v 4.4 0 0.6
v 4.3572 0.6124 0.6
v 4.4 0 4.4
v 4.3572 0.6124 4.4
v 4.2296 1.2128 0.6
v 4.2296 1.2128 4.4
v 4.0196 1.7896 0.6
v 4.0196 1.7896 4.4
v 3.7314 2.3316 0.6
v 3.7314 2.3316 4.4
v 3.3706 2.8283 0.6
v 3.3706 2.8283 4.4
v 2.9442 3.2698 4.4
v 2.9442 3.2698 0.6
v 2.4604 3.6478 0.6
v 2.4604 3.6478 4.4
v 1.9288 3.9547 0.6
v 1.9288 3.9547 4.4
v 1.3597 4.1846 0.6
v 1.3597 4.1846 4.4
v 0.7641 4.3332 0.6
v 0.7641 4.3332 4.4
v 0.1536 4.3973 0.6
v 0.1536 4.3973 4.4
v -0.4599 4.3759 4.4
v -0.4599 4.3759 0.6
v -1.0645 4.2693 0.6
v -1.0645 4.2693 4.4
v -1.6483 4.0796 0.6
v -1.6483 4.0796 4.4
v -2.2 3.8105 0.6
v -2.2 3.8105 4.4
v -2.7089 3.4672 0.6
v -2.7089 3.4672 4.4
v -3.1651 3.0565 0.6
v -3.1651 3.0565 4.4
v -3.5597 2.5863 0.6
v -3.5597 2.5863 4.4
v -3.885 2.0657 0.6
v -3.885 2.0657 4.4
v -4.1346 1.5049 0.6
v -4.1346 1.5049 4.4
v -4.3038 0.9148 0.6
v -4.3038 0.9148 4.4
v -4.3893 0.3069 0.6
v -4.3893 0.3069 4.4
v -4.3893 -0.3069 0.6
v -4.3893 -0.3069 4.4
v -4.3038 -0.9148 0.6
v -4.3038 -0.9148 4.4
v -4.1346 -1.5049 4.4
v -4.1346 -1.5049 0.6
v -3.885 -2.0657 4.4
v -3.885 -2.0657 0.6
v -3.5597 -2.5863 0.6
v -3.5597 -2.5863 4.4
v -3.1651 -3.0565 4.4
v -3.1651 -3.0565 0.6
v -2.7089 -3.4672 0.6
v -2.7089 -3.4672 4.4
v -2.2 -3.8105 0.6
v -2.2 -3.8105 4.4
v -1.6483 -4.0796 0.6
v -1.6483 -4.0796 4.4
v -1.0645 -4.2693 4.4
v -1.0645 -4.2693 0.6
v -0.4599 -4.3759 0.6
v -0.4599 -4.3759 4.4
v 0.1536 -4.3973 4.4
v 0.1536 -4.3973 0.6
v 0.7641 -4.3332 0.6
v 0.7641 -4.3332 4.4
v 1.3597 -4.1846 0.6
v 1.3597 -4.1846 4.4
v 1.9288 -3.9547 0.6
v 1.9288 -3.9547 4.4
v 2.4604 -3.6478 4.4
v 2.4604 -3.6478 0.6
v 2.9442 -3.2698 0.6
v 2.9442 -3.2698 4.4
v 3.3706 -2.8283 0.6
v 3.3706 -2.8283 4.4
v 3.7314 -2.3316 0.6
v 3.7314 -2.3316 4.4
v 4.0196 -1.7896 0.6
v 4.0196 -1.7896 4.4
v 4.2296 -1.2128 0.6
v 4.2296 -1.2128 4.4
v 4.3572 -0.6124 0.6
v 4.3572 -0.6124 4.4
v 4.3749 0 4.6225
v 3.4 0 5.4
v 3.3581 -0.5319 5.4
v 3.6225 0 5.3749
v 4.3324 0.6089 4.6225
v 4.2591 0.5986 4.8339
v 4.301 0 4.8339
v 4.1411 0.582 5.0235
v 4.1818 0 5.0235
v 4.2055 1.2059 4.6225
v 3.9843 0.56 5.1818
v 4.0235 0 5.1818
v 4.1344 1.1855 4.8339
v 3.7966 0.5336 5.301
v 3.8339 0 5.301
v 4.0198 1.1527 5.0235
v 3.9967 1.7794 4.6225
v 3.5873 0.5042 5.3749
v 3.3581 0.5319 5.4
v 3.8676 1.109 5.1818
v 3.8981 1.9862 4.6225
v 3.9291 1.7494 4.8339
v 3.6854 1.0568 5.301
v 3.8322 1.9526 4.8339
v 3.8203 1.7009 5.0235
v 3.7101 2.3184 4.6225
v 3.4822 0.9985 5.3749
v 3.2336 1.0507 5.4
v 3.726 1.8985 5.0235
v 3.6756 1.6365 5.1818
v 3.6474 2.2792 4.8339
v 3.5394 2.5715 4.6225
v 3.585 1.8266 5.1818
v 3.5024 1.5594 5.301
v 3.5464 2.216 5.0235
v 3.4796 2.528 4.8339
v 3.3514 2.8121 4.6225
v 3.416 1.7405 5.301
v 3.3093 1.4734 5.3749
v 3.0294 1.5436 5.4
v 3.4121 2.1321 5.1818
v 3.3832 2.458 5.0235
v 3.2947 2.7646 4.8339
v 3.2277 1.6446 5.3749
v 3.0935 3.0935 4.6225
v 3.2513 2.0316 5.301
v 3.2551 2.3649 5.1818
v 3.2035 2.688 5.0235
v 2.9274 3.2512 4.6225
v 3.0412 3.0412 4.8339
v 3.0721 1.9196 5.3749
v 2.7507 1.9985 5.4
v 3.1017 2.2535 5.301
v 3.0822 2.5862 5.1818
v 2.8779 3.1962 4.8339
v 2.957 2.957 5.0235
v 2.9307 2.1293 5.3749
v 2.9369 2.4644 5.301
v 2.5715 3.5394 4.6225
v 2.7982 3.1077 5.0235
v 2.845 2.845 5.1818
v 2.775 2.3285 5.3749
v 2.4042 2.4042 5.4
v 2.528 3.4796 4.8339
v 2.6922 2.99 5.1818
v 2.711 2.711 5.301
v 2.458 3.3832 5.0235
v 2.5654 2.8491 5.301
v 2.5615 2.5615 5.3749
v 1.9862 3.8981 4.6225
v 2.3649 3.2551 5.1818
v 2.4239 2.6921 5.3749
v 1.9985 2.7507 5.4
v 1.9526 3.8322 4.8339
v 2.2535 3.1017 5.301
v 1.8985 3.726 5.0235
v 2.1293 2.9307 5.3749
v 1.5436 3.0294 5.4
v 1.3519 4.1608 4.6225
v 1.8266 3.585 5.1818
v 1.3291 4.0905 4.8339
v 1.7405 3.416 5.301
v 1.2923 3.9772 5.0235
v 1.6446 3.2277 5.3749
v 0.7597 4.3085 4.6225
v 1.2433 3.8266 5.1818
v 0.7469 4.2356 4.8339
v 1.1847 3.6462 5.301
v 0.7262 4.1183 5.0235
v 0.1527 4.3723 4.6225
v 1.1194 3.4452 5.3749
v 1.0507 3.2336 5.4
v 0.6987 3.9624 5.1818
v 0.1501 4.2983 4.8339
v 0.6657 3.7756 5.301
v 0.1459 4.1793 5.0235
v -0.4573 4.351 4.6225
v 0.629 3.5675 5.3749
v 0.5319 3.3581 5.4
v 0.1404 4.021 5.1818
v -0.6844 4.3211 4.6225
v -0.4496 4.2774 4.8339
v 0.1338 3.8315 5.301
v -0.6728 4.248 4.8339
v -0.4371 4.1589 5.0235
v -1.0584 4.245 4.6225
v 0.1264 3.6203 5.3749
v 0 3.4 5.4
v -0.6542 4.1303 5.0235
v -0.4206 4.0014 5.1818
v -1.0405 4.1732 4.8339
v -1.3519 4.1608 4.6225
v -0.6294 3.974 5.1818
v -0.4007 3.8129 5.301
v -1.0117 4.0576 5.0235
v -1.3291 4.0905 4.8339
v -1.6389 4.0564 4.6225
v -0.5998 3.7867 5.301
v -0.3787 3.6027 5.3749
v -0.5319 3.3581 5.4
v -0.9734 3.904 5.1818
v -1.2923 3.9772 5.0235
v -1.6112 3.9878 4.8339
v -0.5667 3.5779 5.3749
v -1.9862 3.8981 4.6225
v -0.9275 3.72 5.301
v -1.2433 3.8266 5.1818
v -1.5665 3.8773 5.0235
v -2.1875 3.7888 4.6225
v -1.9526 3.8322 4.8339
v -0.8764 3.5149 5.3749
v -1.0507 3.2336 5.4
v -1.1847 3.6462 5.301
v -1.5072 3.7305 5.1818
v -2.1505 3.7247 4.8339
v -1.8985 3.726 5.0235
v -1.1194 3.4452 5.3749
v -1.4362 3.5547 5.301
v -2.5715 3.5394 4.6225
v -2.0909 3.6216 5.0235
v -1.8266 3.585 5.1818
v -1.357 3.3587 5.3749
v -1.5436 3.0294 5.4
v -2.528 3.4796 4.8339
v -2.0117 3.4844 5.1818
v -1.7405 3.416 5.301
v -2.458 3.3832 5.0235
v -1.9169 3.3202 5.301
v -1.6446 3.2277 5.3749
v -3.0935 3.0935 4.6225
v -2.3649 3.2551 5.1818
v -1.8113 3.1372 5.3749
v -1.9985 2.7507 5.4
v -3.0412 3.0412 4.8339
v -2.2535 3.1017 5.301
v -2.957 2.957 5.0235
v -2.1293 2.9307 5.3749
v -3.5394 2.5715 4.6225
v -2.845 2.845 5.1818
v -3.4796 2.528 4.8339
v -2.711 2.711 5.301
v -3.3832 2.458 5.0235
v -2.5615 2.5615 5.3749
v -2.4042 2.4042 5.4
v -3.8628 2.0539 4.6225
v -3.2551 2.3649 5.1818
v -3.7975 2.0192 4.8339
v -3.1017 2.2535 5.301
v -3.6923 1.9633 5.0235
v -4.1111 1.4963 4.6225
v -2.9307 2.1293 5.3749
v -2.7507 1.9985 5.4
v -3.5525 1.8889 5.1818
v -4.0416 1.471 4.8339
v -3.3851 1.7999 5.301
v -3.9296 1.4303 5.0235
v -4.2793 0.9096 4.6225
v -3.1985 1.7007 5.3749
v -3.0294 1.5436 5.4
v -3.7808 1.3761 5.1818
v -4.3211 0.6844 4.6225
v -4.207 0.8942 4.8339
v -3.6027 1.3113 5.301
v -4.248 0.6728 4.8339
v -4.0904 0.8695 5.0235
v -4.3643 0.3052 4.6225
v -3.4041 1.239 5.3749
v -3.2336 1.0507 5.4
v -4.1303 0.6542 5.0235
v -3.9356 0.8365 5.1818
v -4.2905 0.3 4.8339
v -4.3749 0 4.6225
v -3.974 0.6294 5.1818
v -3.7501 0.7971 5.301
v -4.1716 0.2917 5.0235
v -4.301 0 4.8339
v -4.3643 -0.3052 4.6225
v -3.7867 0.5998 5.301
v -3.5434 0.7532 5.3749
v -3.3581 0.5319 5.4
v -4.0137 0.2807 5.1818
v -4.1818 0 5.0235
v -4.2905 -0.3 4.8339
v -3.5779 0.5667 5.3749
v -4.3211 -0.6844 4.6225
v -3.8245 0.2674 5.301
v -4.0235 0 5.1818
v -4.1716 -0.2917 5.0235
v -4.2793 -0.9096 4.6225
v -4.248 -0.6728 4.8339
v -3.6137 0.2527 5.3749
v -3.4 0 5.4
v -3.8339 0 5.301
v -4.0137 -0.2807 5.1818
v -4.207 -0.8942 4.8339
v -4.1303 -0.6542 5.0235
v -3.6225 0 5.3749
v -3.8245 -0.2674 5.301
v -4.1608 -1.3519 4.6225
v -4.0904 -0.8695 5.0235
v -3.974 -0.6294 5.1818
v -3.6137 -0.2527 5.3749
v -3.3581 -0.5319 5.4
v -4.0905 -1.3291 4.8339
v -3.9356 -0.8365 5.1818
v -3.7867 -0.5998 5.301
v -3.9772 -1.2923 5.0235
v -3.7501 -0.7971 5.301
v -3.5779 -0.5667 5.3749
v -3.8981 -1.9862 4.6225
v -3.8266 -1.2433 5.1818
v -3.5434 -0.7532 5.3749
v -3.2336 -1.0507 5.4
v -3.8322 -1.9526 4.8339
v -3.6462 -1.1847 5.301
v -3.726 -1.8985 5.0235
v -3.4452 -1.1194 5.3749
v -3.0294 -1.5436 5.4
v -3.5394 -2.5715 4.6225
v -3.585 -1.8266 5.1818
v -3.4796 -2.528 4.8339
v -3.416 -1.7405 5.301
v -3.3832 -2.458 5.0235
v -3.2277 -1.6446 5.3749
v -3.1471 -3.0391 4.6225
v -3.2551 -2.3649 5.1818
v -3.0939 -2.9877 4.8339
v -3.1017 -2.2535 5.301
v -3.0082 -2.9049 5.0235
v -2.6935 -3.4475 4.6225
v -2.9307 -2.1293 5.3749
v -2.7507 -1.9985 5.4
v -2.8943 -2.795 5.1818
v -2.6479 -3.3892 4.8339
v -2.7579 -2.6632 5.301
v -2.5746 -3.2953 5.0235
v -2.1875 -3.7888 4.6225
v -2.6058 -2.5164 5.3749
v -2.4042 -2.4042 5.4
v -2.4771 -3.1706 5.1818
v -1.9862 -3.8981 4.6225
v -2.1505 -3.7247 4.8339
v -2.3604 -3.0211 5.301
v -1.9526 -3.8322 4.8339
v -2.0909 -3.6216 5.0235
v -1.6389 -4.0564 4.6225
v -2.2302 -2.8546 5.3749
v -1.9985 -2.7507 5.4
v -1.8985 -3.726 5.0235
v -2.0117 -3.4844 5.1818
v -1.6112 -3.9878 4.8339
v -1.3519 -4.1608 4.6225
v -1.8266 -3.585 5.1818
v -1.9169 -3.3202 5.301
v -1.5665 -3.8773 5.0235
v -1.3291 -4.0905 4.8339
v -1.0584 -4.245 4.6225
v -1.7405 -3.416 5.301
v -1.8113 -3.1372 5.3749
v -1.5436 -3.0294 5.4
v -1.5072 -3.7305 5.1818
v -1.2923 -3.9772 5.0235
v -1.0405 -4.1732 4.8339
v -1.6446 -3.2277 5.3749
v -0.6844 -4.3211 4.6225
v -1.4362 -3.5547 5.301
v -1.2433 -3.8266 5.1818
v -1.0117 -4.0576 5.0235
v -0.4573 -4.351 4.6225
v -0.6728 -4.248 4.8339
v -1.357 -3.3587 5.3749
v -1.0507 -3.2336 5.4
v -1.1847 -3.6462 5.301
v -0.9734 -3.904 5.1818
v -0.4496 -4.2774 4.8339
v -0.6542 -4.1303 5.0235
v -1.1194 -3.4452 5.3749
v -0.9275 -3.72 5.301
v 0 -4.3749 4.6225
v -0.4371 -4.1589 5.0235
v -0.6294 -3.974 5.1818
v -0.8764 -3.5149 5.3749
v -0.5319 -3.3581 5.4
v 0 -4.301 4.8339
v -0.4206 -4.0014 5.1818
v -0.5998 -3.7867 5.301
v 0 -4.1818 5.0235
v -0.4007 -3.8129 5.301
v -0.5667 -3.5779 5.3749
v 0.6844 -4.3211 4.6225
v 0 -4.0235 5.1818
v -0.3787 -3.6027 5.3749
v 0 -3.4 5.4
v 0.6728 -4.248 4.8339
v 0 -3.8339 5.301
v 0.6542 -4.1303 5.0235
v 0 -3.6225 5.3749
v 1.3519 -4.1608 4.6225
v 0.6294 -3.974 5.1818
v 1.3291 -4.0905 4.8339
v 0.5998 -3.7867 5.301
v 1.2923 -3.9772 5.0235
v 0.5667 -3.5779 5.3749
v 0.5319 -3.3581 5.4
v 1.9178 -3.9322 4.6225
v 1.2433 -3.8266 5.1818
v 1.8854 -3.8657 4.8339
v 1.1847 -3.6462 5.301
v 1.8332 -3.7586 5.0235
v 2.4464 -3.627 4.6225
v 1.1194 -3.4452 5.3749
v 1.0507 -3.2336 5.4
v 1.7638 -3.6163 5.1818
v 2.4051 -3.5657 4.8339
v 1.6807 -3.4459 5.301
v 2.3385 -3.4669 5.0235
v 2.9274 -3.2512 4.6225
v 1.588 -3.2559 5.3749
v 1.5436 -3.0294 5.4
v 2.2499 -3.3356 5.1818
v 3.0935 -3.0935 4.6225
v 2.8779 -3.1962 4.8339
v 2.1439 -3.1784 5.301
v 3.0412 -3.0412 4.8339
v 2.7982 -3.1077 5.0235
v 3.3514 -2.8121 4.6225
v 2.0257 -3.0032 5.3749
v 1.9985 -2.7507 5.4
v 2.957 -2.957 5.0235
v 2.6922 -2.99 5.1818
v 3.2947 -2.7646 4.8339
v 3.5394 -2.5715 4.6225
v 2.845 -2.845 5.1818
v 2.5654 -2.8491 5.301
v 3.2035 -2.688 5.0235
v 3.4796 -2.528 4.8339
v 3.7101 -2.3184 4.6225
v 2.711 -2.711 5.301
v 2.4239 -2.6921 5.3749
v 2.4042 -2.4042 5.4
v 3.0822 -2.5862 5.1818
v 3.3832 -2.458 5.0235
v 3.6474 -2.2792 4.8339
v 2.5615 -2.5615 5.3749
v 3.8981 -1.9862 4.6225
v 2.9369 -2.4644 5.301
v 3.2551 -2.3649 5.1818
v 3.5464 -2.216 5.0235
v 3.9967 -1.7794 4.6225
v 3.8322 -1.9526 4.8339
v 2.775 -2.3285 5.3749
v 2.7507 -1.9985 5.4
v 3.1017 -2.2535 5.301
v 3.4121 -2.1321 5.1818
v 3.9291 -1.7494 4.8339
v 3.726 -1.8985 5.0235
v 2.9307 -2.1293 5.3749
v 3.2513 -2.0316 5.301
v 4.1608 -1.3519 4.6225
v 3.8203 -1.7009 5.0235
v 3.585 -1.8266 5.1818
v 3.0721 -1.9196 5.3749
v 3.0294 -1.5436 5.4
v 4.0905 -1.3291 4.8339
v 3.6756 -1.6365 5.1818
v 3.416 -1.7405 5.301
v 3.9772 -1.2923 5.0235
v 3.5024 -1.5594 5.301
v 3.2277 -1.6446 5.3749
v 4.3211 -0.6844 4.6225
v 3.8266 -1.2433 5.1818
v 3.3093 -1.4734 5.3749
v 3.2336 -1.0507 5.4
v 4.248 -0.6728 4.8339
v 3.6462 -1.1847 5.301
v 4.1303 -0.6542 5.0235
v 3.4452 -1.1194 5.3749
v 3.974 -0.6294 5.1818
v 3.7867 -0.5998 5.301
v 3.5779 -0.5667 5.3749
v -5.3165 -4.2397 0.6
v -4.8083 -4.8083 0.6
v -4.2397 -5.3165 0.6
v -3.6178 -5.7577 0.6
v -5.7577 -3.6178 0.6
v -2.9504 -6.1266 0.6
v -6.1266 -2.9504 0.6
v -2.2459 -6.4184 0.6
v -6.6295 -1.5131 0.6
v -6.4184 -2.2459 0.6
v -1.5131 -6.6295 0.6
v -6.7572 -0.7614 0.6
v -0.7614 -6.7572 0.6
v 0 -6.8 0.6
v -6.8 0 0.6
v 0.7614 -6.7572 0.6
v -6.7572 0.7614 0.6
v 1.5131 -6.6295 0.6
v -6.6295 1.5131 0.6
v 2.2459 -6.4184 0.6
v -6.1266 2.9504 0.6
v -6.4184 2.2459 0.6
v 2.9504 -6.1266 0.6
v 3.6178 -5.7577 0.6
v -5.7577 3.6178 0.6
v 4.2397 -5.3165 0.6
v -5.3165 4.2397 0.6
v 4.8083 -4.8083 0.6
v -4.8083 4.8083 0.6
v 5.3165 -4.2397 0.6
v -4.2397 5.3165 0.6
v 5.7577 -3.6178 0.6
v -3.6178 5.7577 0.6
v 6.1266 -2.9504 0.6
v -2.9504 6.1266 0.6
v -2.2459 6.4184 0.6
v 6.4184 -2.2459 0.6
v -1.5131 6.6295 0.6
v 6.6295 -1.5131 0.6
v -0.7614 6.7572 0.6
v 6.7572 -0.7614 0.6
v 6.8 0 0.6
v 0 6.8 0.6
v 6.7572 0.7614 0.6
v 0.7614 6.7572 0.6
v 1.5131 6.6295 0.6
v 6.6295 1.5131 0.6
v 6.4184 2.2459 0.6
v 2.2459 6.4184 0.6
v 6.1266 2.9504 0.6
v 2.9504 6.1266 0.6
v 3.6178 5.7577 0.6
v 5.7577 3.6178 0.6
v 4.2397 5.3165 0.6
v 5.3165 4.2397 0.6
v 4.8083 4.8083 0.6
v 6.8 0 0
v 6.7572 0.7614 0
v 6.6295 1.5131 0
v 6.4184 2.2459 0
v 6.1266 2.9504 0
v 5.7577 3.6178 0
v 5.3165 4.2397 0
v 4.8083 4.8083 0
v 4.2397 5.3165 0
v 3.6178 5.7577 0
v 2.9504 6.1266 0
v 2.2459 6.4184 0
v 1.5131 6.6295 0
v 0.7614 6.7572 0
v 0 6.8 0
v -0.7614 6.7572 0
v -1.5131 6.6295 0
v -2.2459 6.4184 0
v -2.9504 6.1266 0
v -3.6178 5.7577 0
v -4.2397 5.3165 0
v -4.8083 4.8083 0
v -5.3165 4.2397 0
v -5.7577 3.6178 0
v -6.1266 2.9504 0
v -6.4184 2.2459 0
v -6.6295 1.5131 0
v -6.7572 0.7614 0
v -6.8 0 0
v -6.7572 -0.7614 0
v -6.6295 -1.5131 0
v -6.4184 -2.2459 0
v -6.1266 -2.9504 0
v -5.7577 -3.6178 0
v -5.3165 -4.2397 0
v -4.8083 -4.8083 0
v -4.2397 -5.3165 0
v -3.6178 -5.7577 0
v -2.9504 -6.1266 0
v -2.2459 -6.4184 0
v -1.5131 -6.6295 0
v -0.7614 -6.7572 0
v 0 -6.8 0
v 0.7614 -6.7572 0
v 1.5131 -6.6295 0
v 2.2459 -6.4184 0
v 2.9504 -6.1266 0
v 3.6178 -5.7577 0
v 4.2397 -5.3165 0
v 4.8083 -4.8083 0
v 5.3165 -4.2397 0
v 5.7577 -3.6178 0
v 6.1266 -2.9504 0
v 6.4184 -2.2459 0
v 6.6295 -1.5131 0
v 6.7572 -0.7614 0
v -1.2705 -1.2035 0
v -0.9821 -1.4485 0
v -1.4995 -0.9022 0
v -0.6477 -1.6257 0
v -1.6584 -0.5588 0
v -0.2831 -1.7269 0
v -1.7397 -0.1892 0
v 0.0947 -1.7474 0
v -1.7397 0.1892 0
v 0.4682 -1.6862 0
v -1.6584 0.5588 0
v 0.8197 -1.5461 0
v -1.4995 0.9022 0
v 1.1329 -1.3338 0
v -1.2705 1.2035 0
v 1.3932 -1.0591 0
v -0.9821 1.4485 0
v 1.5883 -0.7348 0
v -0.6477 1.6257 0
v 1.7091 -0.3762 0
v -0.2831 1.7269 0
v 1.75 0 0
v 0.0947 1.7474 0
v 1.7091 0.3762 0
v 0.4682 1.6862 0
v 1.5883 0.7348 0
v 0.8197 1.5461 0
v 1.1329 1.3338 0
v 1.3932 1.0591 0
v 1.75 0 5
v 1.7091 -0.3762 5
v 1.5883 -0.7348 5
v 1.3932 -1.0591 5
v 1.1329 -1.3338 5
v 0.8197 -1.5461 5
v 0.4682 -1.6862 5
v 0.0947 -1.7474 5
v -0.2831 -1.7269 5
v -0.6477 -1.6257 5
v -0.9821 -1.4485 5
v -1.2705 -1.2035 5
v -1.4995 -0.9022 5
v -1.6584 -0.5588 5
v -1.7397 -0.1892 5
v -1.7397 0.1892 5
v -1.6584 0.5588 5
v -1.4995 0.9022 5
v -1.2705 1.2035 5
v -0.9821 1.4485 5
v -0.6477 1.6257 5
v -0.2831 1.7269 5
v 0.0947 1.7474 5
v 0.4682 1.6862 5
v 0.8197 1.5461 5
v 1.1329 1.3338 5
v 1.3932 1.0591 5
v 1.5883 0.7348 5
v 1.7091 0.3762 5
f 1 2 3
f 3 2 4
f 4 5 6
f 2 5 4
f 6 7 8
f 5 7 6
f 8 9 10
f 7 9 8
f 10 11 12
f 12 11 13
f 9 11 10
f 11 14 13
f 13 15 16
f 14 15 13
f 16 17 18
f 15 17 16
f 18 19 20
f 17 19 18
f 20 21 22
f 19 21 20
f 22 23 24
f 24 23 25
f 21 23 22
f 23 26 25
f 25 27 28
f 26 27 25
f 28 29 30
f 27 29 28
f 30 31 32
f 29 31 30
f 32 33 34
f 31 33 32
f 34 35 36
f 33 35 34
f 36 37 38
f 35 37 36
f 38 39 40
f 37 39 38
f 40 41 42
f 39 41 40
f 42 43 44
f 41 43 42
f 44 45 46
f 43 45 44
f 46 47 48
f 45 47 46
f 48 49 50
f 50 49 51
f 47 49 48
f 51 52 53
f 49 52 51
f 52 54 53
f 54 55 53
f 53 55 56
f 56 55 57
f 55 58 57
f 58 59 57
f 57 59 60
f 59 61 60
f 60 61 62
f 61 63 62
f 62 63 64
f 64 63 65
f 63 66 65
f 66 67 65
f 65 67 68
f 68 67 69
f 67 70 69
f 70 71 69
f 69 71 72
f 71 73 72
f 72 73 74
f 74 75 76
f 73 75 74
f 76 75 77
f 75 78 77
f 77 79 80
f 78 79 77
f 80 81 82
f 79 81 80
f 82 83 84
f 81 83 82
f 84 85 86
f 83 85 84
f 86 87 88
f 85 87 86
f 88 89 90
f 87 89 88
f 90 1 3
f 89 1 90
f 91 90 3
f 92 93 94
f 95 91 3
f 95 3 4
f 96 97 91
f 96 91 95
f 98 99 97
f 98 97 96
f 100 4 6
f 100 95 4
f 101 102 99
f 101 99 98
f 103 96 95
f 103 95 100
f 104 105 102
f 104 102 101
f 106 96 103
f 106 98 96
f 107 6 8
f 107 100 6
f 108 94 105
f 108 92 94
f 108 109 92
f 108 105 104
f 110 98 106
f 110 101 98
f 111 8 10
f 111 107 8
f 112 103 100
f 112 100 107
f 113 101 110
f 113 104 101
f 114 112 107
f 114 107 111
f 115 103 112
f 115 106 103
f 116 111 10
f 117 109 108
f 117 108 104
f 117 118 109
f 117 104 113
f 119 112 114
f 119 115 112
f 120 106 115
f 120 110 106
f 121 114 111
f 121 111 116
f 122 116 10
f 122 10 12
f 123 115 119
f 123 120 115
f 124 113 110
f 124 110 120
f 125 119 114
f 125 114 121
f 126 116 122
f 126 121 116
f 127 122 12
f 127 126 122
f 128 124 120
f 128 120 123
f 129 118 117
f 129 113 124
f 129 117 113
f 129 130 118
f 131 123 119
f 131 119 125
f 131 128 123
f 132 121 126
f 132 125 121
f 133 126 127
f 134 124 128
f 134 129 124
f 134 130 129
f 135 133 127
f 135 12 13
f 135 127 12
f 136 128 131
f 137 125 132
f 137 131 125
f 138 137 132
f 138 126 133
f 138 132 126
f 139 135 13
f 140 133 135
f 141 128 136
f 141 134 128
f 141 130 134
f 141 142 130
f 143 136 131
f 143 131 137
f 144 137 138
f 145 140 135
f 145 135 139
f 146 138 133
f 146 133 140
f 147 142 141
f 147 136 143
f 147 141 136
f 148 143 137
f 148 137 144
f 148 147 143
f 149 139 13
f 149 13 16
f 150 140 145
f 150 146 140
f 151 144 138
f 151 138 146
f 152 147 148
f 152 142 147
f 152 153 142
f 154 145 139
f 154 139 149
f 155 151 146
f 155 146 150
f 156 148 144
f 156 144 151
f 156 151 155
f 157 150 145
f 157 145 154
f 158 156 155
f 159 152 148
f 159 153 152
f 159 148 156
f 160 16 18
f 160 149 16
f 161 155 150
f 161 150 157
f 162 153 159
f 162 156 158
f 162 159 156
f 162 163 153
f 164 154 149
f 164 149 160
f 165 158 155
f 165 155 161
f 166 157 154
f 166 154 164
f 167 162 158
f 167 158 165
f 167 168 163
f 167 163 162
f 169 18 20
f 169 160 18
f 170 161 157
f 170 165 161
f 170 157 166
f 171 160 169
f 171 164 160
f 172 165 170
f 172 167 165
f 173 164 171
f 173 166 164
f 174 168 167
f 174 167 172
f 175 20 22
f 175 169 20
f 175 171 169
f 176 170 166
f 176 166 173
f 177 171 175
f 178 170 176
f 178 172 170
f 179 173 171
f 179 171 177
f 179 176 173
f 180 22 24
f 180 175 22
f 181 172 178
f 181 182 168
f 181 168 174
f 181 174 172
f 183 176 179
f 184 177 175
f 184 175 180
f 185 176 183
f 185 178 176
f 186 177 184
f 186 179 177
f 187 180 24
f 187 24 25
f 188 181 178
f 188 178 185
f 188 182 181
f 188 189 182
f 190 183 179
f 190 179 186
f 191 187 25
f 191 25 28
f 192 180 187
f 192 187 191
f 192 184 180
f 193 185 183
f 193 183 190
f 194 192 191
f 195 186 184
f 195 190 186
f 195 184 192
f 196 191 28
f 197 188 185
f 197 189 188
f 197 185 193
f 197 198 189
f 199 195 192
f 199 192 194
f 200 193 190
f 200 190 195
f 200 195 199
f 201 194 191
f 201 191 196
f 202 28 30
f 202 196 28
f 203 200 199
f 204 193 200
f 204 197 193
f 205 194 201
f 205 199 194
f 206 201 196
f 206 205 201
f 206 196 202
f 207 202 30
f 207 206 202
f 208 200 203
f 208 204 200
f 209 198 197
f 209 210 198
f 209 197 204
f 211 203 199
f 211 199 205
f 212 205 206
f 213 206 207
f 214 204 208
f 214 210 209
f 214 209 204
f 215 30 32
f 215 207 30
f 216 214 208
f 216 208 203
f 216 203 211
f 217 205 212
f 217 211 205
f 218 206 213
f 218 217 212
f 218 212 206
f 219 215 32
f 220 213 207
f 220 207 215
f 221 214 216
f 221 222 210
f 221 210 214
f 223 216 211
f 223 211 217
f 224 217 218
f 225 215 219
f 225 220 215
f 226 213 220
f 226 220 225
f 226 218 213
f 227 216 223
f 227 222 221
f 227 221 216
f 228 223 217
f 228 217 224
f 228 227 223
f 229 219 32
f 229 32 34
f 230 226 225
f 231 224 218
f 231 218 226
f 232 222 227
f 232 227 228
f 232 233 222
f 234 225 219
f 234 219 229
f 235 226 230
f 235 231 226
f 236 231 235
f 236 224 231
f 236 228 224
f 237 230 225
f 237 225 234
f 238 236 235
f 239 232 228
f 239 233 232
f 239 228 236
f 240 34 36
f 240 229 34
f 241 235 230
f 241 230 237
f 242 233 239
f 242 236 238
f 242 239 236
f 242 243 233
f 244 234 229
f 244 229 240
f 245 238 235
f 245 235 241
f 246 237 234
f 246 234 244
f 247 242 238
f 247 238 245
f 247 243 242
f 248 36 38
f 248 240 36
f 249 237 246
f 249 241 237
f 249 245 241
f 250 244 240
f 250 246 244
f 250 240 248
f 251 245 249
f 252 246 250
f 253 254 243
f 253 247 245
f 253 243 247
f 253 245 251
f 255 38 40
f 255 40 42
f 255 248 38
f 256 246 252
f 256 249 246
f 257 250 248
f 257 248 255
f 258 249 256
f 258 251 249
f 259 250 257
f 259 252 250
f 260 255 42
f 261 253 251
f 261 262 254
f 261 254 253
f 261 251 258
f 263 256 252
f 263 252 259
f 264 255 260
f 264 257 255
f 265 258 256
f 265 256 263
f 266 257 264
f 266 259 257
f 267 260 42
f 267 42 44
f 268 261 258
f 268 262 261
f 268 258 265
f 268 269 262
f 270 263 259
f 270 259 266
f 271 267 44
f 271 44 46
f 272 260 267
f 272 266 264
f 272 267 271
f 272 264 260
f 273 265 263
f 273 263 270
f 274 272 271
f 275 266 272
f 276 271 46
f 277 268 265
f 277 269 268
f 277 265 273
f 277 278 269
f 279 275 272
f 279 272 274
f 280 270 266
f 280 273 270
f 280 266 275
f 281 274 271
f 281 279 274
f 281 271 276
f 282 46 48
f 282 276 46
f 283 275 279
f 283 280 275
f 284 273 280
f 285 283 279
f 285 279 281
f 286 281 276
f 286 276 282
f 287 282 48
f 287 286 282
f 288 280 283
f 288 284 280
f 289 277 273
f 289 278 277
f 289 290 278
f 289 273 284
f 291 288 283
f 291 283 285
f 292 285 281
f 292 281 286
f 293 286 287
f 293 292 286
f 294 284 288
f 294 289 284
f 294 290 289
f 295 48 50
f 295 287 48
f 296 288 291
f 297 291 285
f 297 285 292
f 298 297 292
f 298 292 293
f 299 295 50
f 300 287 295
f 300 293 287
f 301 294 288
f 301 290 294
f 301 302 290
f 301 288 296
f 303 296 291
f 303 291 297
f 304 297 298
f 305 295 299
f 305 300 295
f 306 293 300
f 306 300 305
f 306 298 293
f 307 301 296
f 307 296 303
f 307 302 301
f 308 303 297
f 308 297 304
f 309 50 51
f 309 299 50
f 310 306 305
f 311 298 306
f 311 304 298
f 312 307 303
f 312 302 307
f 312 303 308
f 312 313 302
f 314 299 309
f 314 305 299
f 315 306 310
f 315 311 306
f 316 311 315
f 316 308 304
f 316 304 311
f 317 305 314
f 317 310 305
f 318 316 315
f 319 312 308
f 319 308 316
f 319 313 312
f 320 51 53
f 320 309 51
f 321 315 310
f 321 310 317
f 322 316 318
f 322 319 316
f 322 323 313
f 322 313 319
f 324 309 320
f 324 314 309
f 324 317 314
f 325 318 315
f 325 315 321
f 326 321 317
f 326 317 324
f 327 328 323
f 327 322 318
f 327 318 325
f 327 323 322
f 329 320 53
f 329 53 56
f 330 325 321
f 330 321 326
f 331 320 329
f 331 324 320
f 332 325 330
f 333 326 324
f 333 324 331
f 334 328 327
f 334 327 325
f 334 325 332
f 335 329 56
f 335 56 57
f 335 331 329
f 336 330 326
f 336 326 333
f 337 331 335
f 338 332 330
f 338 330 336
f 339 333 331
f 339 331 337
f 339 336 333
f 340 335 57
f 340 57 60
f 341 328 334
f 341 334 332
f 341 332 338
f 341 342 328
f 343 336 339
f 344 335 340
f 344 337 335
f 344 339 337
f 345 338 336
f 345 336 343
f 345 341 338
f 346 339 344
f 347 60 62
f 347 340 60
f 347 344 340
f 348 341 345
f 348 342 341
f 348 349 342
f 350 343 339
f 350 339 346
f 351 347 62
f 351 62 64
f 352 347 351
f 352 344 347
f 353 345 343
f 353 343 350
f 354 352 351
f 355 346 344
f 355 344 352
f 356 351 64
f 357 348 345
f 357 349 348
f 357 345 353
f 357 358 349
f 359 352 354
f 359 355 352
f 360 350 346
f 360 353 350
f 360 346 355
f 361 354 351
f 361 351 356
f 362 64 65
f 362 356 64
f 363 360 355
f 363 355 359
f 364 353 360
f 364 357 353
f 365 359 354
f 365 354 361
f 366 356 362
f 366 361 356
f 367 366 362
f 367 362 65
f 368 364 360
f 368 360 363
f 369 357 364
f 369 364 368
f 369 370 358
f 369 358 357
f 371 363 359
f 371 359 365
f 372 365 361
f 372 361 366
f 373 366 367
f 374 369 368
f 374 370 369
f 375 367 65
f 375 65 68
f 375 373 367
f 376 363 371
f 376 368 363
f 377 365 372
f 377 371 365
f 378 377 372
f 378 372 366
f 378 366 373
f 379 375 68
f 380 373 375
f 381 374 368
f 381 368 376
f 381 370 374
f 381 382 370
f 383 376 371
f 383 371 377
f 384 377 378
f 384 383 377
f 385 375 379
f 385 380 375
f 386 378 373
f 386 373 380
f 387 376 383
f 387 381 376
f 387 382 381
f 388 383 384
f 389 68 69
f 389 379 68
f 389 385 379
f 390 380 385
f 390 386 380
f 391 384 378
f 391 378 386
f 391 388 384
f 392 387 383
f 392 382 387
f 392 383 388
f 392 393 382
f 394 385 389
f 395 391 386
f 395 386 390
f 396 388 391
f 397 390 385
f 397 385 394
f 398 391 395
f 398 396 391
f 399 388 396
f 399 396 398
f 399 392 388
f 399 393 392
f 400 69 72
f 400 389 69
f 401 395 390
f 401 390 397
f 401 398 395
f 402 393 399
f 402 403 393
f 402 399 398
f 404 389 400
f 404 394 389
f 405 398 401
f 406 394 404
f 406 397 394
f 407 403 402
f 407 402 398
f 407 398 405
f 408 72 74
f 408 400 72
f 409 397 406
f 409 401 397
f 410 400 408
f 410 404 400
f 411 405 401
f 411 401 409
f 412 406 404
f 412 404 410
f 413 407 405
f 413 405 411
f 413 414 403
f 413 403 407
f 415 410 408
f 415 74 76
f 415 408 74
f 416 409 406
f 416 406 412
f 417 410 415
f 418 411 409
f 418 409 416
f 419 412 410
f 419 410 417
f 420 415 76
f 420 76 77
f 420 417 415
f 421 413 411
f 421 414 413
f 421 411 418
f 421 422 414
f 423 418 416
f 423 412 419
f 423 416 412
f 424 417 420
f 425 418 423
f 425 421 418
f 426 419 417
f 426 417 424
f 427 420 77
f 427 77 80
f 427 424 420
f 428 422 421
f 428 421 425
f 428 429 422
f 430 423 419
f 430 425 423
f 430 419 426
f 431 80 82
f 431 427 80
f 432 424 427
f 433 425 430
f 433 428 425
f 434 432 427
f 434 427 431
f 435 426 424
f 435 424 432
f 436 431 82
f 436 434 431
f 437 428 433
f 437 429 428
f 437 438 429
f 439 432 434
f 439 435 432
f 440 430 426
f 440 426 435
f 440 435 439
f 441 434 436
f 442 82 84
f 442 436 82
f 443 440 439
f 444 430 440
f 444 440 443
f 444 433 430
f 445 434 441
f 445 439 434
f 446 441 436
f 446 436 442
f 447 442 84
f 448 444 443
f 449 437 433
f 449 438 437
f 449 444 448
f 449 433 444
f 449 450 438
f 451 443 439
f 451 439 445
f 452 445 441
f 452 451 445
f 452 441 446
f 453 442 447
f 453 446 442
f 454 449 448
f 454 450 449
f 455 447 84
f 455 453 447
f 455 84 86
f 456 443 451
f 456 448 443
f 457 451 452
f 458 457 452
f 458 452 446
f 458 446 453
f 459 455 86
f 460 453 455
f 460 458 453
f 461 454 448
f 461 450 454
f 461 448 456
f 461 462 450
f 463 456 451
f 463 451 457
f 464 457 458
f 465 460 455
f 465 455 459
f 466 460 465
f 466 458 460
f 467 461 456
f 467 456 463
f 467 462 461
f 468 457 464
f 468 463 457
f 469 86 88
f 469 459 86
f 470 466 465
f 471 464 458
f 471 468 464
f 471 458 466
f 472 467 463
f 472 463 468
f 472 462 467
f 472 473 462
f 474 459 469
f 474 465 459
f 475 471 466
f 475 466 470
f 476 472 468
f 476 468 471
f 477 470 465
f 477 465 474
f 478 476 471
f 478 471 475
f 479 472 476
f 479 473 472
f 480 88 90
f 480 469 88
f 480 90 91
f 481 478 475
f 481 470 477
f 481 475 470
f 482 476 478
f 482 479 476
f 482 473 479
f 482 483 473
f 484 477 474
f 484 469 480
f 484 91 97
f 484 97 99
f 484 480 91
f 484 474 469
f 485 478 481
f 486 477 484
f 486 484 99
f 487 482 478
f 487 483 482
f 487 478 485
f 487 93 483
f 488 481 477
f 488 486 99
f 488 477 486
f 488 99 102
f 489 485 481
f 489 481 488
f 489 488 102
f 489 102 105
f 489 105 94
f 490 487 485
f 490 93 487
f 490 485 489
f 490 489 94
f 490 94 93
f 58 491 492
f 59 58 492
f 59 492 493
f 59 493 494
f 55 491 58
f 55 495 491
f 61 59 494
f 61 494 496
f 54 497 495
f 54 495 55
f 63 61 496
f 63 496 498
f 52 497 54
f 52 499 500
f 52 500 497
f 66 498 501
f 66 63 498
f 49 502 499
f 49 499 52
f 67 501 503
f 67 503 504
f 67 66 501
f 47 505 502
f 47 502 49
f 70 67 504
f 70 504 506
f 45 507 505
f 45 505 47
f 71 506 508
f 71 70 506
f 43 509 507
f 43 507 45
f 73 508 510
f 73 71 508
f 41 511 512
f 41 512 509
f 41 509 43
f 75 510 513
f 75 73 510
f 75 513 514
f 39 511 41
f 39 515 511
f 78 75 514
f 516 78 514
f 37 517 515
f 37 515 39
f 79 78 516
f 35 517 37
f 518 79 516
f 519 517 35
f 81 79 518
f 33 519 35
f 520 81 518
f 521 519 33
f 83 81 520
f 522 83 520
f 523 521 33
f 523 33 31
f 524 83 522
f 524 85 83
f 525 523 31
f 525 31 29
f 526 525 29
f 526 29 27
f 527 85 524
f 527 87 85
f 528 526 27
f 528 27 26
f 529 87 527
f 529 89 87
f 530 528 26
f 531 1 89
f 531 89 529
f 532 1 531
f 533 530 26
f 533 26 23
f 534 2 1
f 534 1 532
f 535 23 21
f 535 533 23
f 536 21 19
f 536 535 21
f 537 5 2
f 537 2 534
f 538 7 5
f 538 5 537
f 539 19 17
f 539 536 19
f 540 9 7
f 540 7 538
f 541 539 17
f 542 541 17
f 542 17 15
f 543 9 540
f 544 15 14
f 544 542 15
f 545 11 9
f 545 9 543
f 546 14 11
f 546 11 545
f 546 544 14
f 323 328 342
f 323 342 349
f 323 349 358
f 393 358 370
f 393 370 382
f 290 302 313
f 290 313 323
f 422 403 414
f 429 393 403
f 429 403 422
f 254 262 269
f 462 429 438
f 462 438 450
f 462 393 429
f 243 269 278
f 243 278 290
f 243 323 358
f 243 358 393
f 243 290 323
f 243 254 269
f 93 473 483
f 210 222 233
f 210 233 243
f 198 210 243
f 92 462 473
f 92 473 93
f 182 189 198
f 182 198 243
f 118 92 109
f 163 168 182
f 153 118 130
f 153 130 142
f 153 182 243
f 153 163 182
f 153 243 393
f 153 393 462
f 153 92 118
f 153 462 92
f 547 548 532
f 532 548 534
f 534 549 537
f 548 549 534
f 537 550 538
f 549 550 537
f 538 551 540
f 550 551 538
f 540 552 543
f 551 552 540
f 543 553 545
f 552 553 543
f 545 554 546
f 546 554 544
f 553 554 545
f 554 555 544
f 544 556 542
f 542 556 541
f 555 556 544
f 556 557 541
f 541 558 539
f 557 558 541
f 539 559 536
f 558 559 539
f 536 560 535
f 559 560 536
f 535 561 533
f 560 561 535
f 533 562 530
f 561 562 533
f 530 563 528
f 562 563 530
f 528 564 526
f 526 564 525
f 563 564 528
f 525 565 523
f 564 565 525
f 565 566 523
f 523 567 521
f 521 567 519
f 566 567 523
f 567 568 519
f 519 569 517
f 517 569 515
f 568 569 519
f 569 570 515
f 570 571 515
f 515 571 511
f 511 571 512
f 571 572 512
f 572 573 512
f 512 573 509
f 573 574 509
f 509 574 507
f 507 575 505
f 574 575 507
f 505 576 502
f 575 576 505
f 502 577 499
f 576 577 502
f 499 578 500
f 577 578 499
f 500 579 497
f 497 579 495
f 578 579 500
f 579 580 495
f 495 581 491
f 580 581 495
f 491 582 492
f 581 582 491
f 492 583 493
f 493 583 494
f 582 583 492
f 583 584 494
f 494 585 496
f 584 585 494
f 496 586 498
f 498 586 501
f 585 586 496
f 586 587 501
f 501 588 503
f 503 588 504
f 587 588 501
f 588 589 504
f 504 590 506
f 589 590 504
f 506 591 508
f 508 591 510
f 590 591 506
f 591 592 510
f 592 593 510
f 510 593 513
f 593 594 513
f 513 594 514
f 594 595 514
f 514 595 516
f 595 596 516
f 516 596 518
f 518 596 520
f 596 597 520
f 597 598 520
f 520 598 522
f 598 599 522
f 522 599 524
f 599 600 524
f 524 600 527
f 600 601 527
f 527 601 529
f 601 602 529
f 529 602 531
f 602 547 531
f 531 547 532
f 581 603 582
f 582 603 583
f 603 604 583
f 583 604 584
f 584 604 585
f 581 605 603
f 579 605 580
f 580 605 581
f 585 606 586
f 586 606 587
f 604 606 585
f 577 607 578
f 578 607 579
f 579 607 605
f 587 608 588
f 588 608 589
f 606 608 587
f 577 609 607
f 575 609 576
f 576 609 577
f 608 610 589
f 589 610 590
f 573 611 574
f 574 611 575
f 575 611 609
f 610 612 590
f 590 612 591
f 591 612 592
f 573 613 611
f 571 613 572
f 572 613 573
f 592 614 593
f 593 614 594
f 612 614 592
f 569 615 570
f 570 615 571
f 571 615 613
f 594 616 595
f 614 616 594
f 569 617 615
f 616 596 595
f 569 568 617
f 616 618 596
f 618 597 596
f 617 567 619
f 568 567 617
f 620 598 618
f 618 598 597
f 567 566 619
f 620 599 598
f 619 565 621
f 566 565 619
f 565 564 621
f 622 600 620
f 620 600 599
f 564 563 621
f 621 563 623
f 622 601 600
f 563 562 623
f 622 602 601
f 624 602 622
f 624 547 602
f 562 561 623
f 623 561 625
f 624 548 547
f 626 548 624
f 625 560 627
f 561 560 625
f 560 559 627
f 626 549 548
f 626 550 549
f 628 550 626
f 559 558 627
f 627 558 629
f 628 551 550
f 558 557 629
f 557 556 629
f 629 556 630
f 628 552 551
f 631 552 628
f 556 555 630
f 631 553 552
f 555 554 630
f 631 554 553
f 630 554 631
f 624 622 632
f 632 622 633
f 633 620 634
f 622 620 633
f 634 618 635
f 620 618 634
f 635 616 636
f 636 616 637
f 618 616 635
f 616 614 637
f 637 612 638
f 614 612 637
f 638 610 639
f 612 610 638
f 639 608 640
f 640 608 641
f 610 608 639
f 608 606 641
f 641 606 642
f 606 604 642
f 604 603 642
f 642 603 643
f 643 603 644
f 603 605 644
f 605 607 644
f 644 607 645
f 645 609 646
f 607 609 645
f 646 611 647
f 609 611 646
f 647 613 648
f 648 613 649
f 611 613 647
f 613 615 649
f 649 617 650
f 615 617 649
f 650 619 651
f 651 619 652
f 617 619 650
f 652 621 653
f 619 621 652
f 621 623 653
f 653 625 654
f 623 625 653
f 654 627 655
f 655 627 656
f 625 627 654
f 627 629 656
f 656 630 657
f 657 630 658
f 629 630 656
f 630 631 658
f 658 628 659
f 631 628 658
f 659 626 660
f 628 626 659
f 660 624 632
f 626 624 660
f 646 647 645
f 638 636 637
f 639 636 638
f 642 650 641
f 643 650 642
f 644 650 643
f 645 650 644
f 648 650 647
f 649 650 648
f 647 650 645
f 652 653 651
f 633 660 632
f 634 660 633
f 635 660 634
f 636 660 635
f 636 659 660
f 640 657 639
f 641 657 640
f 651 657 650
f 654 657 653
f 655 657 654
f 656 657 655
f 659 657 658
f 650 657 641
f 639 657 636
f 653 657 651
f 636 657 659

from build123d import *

# Parameters (mm, degrees)
SKETCH_R     = 6.8
PAD_DEPTH    = 0.6
SKETCH001_R  = 4.4
PAD001_DEPTH = 4.8
SKETCH002_R  = 1.75
POCKET_DEPTH = 5
FILLET_R     = 1


with BuildPart() as part:
    # Sketch → Pad (new body)
    with BuildSketch(Plane.XY):
        Circle(SKETCH_R)
    extrude(amount=PAD_DEPTH)

    # Sketch001 (on Face3 of Pad) → Pad001 (join)
    with BuildSketch(Plane.XY.offset(0.6)):
        Circle(SKETCH001_R)
    extrude(amount=PAD001_DEPTH)

    # Sketch002 (on Face2 of Pad001) → Pocket (cut)
    with BuildSketch(Plane(origin=(0, 0, 0), x_dir=(1, 0, 0), z_dir=(0, 0, -1))):
        Circle(SKETCH002_R)
    extrude(amount=-POCKET_DEPTH, mode=Mode.SUBTRACT)

    # Fillet
    fillet_edges = [part.edges().sort_by_distance(p)[0] for p in [
        (-4.4, 0, 5.4),
    ]]
    fillet(fillet_edges, radius=FILLET_R)


solid = part.part
